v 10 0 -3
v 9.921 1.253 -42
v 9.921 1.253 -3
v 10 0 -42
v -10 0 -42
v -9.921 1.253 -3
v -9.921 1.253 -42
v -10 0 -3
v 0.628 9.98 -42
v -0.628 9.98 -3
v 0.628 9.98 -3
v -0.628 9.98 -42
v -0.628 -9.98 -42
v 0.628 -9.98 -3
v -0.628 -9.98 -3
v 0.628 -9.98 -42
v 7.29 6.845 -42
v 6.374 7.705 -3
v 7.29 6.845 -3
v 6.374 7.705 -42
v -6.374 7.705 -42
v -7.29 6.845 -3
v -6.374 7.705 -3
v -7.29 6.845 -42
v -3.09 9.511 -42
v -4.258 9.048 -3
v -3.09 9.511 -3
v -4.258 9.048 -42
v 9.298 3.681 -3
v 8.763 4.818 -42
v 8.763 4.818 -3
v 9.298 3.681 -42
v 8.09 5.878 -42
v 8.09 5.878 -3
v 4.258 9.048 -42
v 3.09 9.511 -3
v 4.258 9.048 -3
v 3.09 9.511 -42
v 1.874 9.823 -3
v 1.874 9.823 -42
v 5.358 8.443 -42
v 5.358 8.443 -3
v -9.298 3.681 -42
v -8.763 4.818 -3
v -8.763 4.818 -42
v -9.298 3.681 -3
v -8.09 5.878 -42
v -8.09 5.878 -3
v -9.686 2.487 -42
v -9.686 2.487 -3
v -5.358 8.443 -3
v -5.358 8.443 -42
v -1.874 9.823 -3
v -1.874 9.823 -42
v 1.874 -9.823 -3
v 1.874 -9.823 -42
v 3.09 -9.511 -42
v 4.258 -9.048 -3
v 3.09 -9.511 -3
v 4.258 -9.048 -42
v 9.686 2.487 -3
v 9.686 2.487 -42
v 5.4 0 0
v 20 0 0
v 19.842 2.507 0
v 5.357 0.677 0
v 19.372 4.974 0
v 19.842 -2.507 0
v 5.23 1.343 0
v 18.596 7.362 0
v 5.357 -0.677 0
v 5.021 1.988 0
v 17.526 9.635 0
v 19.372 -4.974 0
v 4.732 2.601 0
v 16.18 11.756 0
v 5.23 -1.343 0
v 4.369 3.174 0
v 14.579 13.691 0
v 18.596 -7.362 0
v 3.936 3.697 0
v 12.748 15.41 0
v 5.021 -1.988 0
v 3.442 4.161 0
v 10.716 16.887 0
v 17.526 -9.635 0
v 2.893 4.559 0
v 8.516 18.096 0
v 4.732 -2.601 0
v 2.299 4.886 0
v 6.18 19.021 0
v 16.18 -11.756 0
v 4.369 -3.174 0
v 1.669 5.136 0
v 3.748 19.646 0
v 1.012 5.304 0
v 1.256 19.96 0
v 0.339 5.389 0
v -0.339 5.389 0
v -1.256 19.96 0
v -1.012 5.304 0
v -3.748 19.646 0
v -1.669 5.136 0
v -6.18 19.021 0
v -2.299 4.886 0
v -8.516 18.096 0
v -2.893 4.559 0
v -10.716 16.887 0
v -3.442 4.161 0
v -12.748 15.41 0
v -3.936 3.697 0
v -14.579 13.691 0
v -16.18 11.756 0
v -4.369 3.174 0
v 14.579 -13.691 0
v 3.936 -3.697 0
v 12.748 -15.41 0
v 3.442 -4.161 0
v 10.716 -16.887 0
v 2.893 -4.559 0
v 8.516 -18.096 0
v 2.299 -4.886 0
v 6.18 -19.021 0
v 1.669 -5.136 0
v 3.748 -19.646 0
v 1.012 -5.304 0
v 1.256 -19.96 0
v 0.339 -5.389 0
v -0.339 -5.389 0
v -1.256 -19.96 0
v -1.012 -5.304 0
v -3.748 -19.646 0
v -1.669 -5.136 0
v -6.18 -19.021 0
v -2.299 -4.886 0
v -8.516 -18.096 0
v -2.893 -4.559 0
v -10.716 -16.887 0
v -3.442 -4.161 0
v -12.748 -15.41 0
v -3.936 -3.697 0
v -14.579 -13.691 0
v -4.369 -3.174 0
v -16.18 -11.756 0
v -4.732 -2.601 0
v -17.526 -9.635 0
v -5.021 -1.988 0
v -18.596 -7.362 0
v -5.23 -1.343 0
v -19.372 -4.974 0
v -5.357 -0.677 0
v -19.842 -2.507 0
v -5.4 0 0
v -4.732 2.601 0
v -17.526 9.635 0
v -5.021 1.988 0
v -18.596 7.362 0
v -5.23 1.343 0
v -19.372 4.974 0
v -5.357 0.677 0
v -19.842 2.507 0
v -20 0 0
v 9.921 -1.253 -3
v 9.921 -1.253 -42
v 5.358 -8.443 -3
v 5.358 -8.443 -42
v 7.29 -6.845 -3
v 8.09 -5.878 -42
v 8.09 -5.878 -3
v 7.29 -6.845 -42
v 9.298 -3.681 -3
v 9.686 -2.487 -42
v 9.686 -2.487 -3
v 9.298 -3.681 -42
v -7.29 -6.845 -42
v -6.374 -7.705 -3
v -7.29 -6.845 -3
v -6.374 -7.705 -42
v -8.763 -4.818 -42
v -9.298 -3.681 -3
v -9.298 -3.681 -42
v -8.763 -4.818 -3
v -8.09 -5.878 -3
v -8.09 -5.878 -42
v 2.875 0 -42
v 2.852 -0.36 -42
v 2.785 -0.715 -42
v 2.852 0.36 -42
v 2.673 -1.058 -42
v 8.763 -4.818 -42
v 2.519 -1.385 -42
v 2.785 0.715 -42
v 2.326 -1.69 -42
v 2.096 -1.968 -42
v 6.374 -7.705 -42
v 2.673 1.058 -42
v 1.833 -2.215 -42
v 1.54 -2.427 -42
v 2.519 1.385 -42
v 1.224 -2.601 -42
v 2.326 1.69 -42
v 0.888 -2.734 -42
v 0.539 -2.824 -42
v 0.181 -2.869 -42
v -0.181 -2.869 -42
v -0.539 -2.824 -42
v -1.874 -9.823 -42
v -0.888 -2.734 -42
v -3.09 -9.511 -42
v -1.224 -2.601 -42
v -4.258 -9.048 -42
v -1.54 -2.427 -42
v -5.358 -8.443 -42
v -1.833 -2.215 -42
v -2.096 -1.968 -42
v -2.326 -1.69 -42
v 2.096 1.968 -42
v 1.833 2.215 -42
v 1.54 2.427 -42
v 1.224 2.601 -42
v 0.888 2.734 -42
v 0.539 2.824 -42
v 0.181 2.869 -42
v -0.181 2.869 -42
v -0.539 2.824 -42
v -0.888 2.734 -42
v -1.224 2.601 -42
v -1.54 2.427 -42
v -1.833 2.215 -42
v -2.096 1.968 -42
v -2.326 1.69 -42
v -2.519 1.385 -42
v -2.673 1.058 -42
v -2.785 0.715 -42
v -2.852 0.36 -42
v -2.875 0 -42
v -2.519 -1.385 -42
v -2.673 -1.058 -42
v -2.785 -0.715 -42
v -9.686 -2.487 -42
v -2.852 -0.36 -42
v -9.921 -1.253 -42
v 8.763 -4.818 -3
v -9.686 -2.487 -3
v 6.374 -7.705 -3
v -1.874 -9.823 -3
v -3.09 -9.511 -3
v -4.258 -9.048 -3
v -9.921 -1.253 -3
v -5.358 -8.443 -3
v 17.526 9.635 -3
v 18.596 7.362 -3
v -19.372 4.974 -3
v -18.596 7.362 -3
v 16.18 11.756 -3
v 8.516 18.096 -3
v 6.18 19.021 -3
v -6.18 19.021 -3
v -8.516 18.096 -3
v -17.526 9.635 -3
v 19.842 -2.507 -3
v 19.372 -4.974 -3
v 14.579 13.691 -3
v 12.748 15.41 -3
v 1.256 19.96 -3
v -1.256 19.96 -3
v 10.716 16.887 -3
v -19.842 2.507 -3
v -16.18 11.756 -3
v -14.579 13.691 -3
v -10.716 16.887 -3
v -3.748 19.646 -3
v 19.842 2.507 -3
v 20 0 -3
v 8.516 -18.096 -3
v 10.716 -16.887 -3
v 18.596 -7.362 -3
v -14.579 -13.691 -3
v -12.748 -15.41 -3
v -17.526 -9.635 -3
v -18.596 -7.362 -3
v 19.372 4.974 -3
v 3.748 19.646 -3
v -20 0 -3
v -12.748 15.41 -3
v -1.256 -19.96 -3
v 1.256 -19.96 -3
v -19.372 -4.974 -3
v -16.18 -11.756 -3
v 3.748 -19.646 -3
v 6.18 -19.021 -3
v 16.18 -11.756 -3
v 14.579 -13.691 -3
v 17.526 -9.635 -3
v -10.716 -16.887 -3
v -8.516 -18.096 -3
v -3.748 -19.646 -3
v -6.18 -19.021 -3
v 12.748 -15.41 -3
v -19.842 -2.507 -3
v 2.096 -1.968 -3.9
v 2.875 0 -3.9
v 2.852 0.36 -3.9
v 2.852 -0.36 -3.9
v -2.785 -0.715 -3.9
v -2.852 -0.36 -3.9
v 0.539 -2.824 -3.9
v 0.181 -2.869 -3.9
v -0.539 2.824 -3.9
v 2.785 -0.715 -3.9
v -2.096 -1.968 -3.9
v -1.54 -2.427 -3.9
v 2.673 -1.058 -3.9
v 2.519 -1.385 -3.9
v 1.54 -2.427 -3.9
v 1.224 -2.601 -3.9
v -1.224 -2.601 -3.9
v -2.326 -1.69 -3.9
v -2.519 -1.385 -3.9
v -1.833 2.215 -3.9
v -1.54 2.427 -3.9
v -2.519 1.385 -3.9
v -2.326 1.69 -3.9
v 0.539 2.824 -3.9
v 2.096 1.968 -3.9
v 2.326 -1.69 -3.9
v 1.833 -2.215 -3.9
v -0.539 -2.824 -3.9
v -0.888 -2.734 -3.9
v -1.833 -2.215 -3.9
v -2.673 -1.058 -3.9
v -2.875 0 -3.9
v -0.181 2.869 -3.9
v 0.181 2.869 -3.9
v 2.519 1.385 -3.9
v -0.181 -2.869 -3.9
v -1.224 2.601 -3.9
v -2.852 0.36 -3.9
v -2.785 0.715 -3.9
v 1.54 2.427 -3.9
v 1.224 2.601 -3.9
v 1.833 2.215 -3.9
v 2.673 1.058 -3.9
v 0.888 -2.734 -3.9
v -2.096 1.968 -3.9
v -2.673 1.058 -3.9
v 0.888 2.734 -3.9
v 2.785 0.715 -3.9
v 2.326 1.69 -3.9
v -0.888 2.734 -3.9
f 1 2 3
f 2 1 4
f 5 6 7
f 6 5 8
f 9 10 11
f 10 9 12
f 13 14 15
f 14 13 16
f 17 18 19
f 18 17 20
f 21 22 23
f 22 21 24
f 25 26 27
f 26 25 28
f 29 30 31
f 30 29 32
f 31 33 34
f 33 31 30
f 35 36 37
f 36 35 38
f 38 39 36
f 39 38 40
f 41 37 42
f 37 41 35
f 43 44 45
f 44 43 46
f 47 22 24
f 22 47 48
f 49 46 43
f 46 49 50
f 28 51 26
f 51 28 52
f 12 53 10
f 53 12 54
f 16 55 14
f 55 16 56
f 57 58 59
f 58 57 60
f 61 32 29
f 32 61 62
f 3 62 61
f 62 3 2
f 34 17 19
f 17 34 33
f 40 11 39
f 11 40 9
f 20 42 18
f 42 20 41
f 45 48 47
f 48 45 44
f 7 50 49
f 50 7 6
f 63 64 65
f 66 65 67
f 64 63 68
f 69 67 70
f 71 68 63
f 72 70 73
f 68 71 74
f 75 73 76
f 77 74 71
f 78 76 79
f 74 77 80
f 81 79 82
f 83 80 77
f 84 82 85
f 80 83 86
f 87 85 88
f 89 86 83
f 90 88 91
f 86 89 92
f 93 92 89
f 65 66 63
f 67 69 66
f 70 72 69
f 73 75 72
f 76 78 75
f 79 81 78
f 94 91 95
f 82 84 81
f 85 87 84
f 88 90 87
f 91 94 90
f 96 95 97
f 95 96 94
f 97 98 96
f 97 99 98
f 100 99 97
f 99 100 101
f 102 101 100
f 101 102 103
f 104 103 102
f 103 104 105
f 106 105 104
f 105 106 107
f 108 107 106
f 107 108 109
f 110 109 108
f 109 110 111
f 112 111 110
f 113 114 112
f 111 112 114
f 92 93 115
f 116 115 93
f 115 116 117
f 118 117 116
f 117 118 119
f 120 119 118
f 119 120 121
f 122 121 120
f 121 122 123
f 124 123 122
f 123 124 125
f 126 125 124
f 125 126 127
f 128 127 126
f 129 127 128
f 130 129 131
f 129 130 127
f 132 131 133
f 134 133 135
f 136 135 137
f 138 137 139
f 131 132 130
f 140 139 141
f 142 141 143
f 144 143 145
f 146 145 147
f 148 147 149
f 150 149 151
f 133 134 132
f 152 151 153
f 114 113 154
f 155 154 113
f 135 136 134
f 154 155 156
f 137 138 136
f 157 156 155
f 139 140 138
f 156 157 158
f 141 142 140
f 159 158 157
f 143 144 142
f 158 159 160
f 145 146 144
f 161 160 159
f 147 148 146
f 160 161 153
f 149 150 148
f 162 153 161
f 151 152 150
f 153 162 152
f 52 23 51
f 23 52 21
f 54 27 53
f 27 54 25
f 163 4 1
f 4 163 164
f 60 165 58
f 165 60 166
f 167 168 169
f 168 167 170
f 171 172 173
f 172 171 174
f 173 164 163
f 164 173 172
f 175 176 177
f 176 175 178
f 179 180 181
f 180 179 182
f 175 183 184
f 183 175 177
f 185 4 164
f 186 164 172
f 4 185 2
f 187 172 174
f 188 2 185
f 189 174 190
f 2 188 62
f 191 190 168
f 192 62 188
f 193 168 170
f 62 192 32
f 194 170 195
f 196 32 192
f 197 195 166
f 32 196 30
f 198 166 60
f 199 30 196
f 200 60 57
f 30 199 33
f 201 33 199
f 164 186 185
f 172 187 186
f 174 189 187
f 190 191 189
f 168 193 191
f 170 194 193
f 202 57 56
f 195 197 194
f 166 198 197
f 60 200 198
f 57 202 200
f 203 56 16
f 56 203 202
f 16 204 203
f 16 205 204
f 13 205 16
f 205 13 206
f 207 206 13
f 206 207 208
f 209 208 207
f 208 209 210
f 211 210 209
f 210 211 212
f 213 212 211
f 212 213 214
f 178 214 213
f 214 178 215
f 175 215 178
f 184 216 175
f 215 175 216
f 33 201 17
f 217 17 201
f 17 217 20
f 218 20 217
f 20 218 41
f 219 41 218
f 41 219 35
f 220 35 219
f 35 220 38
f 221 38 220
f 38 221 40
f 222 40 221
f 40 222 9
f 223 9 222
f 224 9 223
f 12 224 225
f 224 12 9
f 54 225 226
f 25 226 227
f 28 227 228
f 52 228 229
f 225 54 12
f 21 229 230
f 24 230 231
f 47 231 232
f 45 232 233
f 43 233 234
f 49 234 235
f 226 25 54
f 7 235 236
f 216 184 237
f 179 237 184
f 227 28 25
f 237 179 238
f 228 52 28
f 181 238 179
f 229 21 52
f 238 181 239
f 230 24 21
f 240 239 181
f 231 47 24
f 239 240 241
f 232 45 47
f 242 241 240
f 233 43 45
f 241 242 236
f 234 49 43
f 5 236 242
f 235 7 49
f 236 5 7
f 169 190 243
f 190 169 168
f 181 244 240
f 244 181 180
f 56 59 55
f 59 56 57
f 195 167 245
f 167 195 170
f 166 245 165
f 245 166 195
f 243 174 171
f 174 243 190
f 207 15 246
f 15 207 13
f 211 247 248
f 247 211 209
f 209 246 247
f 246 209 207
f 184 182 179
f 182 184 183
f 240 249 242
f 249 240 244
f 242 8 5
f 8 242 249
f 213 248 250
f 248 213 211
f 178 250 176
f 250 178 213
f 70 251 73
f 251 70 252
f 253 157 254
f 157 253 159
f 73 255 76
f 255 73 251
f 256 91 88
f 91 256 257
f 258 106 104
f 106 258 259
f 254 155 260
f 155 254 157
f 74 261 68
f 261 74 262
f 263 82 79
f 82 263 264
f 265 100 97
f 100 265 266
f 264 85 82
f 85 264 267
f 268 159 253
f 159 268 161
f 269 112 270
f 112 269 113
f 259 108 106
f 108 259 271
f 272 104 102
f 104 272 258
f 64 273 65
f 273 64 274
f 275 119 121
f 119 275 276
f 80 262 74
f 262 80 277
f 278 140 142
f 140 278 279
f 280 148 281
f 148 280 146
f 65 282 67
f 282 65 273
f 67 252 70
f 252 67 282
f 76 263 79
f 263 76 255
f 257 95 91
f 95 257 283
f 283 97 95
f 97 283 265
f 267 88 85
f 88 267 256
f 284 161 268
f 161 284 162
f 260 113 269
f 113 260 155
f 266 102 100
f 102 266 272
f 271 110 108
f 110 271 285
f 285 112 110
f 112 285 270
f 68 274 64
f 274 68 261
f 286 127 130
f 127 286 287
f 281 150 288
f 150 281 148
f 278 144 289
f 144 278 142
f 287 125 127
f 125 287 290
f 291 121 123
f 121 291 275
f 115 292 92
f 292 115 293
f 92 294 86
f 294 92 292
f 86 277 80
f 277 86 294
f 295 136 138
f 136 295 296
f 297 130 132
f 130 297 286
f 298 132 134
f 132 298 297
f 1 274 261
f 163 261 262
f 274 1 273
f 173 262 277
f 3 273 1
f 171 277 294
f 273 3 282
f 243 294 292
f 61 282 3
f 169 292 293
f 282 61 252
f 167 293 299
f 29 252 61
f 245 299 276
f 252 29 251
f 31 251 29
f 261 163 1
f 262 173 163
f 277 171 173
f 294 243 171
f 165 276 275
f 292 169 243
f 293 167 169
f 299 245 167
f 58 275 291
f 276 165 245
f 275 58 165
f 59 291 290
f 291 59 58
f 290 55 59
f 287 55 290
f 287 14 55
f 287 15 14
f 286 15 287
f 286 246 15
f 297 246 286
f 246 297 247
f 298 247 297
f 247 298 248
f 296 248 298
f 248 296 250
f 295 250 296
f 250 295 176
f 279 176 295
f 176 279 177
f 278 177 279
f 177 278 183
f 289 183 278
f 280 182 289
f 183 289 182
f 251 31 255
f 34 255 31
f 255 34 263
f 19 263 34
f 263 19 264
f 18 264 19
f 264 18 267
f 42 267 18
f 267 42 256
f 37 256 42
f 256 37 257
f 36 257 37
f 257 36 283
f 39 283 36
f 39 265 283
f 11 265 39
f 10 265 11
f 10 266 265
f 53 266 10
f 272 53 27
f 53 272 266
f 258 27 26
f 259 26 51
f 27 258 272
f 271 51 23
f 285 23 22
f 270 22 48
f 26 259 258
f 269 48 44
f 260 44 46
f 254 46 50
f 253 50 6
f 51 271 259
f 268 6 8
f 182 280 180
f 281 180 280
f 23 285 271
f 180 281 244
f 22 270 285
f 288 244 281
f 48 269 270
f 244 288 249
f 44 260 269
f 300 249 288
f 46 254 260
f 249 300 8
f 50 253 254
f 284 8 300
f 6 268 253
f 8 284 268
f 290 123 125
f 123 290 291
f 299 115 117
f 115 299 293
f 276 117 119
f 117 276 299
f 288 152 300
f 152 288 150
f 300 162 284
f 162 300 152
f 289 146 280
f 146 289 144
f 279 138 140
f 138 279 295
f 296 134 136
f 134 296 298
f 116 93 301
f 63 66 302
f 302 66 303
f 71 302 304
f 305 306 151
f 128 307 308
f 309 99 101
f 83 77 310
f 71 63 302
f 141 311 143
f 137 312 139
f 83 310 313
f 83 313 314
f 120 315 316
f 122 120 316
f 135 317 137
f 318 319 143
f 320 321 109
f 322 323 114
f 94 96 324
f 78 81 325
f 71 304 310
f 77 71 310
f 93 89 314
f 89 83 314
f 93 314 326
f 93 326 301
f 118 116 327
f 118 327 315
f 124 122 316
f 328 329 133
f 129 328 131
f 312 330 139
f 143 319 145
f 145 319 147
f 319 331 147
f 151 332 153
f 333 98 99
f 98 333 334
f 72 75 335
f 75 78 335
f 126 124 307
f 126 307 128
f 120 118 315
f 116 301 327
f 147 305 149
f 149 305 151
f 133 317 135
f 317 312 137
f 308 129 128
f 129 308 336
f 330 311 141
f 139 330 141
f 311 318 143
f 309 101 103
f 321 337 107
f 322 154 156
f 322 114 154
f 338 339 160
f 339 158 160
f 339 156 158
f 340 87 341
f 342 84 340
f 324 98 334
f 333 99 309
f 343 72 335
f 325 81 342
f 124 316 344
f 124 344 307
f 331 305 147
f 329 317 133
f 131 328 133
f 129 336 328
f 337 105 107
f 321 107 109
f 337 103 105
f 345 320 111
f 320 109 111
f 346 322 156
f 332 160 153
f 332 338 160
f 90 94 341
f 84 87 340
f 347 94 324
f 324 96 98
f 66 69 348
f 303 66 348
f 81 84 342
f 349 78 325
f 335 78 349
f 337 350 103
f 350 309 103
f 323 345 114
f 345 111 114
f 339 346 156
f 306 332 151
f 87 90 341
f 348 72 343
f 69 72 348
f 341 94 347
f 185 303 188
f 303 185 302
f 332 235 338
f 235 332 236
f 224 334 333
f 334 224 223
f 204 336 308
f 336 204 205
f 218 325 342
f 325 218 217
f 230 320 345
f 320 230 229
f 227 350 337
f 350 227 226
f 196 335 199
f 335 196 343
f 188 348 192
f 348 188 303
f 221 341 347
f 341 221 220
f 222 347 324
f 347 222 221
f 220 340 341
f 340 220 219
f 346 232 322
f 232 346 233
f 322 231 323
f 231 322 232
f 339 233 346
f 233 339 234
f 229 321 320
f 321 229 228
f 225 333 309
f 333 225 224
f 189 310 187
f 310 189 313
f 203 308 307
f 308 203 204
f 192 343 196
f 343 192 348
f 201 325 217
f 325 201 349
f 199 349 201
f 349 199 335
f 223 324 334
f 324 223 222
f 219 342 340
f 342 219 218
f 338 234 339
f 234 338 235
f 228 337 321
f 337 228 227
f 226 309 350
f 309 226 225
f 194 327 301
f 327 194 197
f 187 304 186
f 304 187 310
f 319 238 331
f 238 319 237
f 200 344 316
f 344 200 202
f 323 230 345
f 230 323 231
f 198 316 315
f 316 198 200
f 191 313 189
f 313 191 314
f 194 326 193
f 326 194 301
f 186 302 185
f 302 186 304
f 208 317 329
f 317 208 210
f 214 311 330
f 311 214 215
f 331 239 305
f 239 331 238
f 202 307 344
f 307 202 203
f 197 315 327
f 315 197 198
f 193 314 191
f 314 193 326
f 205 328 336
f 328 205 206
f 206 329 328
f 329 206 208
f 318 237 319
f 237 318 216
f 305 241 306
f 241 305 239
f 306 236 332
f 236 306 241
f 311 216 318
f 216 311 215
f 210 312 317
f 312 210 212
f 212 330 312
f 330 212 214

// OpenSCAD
$fn = 50;


difference() {
	union() {
		translate(v = [0, 0, -42.0000000000]) {
			cylinder(h = 42, r = 10.0000000000);
		}
		translate(v = [0, 0, -3.0000000000]) {
			cylinder(h = 3, r = 20.0000000000);
		}
	}
	union() {
		translate(v = [0, 0, 0]) {
			rotate(a = [0, 0, 0]) {
				difference() {
					union() {
						#translate(v = [0, 0, -42.0000000000]) {
							cylinder(h = 42, r = 2.6000000000);
						}
						#translate(v = [0, 0, -3.9000000000]) {
							cylinder(h = 3.9000000000, r1 = 2.8750000000, r2 = 5.4000000000);
						}
						#translate(v = [0, 0, -42.0000000000]) {
							cylinder(h = 42, r = 2.8750000000);
						}
						#translate(v = [0, 0, -42.0000000000]) {
							cylinder(h = 42, r = 2.6000000000);
						}
					}
					union();
				}
			}
		}
	}
}
